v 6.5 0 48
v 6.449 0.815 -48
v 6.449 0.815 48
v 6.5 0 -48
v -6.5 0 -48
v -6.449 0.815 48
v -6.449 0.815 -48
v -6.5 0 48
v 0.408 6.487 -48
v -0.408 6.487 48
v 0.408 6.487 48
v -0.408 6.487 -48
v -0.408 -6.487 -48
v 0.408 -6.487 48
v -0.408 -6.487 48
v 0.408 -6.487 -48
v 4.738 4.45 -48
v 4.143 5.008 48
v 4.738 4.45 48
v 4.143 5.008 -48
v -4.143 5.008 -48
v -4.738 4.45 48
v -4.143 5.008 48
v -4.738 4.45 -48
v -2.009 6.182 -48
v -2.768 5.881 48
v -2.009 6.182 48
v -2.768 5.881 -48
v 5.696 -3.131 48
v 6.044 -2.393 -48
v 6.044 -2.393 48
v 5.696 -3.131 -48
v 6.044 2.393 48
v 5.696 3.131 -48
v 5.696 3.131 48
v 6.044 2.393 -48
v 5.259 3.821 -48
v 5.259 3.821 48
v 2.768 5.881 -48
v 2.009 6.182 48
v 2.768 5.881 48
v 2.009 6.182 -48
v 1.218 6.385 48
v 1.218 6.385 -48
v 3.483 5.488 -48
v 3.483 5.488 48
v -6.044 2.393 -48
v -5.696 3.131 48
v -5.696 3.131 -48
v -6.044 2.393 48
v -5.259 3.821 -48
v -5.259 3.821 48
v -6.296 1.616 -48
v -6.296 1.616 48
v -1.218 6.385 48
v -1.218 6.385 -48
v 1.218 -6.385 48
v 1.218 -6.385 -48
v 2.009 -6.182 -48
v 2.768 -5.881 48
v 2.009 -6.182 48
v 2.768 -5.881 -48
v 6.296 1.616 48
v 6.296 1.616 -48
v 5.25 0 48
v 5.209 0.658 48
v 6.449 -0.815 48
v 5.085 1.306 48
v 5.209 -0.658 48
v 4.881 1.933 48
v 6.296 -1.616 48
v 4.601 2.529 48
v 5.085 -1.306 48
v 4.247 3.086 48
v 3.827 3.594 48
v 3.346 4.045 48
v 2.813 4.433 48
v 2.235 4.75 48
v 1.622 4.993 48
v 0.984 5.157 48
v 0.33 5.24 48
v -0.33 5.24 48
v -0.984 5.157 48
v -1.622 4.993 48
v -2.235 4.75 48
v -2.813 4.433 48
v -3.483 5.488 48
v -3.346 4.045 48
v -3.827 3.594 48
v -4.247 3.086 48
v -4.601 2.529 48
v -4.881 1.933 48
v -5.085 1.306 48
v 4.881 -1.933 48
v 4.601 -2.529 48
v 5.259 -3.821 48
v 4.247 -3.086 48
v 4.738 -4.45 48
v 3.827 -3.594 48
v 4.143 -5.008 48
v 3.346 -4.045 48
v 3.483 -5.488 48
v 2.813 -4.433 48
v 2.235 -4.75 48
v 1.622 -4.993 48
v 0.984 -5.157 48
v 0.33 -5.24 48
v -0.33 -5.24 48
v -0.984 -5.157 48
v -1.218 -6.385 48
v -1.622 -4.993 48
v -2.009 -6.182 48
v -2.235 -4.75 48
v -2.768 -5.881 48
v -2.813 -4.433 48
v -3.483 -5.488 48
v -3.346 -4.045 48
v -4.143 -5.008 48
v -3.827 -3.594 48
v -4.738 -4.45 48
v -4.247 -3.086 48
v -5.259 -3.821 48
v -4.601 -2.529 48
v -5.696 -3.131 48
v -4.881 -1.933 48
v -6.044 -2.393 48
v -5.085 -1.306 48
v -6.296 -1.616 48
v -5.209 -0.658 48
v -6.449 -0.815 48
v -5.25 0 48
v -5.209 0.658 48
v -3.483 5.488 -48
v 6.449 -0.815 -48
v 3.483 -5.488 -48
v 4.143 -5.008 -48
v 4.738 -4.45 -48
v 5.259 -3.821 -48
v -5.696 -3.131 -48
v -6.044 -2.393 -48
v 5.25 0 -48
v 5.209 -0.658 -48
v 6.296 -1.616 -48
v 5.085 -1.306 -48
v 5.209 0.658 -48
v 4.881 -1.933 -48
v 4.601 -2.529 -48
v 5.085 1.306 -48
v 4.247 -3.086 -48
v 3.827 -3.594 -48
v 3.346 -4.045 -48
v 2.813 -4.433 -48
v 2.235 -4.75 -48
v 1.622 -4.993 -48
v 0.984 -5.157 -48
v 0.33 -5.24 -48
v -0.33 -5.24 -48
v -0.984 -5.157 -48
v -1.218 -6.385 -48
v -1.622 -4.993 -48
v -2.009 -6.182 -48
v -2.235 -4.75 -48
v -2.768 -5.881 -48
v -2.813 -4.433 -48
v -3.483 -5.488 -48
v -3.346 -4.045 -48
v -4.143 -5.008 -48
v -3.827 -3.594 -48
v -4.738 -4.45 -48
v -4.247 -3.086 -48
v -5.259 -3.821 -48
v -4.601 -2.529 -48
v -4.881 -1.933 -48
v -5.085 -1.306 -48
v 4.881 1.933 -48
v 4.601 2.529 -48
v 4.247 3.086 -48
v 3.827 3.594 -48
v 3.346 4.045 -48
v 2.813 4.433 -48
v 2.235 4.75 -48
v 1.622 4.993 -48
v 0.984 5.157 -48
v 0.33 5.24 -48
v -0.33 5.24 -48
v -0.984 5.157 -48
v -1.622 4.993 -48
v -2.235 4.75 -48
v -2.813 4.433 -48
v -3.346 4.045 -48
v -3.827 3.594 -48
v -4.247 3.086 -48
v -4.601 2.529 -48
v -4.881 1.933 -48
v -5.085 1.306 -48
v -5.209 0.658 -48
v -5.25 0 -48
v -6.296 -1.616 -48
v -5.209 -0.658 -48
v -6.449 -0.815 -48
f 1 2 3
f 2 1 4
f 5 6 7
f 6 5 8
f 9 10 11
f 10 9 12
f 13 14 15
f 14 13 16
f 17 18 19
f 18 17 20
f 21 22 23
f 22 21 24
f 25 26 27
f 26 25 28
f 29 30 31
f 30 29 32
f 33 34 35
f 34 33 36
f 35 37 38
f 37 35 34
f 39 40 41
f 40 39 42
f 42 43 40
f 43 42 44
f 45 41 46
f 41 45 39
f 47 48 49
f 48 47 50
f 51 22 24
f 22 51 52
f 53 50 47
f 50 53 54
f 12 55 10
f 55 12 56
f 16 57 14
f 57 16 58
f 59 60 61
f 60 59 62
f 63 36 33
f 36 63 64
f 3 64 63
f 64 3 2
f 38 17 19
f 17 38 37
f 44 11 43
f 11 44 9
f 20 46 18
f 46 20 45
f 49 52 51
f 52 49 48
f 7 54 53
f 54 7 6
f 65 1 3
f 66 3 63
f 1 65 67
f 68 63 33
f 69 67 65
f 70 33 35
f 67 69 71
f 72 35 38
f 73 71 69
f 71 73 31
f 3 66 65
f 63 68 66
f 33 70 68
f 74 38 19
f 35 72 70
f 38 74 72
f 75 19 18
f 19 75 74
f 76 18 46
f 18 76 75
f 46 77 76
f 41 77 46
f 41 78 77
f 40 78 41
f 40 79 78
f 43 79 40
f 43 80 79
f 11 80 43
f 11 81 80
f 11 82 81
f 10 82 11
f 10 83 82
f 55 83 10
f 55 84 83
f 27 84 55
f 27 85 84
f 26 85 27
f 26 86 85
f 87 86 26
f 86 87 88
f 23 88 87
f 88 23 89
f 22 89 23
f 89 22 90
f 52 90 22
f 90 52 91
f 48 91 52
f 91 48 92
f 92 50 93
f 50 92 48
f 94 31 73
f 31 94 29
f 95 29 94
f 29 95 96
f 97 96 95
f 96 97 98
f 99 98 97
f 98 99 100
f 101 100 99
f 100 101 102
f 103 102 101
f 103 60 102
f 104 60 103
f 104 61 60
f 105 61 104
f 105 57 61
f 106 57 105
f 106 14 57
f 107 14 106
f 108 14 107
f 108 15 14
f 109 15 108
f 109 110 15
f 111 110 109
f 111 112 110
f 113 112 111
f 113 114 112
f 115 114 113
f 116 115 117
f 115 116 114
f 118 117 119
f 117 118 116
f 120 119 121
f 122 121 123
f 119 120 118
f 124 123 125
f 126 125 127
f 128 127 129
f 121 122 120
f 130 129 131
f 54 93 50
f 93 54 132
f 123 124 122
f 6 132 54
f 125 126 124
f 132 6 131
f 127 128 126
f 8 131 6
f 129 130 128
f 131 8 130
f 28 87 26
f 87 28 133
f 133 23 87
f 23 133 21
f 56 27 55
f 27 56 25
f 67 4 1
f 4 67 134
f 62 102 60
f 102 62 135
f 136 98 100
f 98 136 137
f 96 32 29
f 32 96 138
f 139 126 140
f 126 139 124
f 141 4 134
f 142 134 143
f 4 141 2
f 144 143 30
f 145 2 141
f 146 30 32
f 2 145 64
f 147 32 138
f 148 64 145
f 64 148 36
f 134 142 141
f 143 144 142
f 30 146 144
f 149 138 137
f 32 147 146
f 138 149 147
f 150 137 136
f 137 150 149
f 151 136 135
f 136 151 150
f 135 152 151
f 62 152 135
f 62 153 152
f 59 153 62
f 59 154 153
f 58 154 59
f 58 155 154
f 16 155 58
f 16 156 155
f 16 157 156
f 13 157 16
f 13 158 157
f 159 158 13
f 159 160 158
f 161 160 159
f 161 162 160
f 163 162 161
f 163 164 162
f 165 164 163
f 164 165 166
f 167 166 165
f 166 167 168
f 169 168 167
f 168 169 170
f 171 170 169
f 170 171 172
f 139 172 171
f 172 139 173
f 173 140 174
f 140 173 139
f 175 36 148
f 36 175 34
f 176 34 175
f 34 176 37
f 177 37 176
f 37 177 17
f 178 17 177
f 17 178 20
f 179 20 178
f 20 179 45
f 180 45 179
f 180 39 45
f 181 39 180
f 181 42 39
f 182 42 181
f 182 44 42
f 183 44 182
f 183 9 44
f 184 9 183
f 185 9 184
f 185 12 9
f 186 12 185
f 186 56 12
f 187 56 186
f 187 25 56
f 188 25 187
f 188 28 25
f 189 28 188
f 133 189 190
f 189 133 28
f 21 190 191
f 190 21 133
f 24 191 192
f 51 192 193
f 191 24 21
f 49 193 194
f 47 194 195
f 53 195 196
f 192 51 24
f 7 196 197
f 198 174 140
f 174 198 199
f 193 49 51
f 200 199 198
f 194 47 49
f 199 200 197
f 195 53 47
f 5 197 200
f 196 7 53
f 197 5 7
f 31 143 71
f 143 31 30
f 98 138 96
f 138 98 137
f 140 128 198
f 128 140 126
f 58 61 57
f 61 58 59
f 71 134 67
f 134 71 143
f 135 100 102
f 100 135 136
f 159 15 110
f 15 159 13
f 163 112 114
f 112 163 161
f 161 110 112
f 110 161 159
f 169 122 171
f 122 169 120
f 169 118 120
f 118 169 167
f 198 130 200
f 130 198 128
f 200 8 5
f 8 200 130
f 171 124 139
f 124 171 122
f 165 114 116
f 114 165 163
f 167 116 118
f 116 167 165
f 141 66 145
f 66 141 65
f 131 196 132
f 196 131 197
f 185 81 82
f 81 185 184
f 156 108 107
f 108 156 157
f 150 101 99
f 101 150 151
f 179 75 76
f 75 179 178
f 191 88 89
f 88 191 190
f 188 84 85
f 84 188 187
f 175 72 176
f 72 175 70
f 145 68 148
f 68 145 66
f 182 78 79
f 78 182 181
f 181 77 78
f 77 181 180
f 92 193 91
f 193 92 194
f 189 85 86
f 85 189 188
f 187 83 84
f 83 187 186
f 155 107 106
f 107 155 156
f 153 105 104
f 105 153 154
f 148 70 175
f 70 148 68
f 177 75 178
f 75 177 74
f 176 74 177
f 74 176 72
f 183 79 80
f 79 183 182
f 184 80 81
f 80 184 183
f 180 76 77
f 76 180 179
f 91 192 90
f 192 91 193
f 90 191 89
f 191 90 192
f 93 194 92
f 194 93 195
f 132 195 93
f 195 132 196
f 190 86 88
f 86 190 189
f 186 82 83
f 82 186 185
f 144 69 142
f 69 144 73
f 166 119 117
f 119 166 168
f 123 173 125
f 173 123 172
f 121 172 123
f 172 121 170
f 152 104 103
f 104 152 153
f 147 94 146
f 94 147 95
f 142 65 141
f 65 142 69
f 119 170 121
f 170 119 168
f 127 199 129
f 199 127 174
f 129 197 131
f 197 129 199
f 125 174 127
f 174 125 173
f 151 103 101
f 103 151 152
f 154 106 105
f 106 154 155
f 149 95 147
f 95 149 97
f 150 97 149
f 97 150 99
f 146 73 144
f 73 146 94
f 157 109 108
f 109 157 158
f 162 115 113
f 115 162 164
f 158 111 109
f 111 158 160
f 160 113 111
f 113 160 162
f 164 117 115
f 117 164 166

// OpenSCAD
$fn = 50;


difference() {
	union() {
		translate(v = [0, 0, -48.0000000000]) {
			cylinder(h = 96, r = 6.5000000000);
		}
	}
	union() {
		translate(v = [0, 0, -100.0000000000]) {
			cylinder(h = 200, r = 5.2500000000);
		}
	}
}
